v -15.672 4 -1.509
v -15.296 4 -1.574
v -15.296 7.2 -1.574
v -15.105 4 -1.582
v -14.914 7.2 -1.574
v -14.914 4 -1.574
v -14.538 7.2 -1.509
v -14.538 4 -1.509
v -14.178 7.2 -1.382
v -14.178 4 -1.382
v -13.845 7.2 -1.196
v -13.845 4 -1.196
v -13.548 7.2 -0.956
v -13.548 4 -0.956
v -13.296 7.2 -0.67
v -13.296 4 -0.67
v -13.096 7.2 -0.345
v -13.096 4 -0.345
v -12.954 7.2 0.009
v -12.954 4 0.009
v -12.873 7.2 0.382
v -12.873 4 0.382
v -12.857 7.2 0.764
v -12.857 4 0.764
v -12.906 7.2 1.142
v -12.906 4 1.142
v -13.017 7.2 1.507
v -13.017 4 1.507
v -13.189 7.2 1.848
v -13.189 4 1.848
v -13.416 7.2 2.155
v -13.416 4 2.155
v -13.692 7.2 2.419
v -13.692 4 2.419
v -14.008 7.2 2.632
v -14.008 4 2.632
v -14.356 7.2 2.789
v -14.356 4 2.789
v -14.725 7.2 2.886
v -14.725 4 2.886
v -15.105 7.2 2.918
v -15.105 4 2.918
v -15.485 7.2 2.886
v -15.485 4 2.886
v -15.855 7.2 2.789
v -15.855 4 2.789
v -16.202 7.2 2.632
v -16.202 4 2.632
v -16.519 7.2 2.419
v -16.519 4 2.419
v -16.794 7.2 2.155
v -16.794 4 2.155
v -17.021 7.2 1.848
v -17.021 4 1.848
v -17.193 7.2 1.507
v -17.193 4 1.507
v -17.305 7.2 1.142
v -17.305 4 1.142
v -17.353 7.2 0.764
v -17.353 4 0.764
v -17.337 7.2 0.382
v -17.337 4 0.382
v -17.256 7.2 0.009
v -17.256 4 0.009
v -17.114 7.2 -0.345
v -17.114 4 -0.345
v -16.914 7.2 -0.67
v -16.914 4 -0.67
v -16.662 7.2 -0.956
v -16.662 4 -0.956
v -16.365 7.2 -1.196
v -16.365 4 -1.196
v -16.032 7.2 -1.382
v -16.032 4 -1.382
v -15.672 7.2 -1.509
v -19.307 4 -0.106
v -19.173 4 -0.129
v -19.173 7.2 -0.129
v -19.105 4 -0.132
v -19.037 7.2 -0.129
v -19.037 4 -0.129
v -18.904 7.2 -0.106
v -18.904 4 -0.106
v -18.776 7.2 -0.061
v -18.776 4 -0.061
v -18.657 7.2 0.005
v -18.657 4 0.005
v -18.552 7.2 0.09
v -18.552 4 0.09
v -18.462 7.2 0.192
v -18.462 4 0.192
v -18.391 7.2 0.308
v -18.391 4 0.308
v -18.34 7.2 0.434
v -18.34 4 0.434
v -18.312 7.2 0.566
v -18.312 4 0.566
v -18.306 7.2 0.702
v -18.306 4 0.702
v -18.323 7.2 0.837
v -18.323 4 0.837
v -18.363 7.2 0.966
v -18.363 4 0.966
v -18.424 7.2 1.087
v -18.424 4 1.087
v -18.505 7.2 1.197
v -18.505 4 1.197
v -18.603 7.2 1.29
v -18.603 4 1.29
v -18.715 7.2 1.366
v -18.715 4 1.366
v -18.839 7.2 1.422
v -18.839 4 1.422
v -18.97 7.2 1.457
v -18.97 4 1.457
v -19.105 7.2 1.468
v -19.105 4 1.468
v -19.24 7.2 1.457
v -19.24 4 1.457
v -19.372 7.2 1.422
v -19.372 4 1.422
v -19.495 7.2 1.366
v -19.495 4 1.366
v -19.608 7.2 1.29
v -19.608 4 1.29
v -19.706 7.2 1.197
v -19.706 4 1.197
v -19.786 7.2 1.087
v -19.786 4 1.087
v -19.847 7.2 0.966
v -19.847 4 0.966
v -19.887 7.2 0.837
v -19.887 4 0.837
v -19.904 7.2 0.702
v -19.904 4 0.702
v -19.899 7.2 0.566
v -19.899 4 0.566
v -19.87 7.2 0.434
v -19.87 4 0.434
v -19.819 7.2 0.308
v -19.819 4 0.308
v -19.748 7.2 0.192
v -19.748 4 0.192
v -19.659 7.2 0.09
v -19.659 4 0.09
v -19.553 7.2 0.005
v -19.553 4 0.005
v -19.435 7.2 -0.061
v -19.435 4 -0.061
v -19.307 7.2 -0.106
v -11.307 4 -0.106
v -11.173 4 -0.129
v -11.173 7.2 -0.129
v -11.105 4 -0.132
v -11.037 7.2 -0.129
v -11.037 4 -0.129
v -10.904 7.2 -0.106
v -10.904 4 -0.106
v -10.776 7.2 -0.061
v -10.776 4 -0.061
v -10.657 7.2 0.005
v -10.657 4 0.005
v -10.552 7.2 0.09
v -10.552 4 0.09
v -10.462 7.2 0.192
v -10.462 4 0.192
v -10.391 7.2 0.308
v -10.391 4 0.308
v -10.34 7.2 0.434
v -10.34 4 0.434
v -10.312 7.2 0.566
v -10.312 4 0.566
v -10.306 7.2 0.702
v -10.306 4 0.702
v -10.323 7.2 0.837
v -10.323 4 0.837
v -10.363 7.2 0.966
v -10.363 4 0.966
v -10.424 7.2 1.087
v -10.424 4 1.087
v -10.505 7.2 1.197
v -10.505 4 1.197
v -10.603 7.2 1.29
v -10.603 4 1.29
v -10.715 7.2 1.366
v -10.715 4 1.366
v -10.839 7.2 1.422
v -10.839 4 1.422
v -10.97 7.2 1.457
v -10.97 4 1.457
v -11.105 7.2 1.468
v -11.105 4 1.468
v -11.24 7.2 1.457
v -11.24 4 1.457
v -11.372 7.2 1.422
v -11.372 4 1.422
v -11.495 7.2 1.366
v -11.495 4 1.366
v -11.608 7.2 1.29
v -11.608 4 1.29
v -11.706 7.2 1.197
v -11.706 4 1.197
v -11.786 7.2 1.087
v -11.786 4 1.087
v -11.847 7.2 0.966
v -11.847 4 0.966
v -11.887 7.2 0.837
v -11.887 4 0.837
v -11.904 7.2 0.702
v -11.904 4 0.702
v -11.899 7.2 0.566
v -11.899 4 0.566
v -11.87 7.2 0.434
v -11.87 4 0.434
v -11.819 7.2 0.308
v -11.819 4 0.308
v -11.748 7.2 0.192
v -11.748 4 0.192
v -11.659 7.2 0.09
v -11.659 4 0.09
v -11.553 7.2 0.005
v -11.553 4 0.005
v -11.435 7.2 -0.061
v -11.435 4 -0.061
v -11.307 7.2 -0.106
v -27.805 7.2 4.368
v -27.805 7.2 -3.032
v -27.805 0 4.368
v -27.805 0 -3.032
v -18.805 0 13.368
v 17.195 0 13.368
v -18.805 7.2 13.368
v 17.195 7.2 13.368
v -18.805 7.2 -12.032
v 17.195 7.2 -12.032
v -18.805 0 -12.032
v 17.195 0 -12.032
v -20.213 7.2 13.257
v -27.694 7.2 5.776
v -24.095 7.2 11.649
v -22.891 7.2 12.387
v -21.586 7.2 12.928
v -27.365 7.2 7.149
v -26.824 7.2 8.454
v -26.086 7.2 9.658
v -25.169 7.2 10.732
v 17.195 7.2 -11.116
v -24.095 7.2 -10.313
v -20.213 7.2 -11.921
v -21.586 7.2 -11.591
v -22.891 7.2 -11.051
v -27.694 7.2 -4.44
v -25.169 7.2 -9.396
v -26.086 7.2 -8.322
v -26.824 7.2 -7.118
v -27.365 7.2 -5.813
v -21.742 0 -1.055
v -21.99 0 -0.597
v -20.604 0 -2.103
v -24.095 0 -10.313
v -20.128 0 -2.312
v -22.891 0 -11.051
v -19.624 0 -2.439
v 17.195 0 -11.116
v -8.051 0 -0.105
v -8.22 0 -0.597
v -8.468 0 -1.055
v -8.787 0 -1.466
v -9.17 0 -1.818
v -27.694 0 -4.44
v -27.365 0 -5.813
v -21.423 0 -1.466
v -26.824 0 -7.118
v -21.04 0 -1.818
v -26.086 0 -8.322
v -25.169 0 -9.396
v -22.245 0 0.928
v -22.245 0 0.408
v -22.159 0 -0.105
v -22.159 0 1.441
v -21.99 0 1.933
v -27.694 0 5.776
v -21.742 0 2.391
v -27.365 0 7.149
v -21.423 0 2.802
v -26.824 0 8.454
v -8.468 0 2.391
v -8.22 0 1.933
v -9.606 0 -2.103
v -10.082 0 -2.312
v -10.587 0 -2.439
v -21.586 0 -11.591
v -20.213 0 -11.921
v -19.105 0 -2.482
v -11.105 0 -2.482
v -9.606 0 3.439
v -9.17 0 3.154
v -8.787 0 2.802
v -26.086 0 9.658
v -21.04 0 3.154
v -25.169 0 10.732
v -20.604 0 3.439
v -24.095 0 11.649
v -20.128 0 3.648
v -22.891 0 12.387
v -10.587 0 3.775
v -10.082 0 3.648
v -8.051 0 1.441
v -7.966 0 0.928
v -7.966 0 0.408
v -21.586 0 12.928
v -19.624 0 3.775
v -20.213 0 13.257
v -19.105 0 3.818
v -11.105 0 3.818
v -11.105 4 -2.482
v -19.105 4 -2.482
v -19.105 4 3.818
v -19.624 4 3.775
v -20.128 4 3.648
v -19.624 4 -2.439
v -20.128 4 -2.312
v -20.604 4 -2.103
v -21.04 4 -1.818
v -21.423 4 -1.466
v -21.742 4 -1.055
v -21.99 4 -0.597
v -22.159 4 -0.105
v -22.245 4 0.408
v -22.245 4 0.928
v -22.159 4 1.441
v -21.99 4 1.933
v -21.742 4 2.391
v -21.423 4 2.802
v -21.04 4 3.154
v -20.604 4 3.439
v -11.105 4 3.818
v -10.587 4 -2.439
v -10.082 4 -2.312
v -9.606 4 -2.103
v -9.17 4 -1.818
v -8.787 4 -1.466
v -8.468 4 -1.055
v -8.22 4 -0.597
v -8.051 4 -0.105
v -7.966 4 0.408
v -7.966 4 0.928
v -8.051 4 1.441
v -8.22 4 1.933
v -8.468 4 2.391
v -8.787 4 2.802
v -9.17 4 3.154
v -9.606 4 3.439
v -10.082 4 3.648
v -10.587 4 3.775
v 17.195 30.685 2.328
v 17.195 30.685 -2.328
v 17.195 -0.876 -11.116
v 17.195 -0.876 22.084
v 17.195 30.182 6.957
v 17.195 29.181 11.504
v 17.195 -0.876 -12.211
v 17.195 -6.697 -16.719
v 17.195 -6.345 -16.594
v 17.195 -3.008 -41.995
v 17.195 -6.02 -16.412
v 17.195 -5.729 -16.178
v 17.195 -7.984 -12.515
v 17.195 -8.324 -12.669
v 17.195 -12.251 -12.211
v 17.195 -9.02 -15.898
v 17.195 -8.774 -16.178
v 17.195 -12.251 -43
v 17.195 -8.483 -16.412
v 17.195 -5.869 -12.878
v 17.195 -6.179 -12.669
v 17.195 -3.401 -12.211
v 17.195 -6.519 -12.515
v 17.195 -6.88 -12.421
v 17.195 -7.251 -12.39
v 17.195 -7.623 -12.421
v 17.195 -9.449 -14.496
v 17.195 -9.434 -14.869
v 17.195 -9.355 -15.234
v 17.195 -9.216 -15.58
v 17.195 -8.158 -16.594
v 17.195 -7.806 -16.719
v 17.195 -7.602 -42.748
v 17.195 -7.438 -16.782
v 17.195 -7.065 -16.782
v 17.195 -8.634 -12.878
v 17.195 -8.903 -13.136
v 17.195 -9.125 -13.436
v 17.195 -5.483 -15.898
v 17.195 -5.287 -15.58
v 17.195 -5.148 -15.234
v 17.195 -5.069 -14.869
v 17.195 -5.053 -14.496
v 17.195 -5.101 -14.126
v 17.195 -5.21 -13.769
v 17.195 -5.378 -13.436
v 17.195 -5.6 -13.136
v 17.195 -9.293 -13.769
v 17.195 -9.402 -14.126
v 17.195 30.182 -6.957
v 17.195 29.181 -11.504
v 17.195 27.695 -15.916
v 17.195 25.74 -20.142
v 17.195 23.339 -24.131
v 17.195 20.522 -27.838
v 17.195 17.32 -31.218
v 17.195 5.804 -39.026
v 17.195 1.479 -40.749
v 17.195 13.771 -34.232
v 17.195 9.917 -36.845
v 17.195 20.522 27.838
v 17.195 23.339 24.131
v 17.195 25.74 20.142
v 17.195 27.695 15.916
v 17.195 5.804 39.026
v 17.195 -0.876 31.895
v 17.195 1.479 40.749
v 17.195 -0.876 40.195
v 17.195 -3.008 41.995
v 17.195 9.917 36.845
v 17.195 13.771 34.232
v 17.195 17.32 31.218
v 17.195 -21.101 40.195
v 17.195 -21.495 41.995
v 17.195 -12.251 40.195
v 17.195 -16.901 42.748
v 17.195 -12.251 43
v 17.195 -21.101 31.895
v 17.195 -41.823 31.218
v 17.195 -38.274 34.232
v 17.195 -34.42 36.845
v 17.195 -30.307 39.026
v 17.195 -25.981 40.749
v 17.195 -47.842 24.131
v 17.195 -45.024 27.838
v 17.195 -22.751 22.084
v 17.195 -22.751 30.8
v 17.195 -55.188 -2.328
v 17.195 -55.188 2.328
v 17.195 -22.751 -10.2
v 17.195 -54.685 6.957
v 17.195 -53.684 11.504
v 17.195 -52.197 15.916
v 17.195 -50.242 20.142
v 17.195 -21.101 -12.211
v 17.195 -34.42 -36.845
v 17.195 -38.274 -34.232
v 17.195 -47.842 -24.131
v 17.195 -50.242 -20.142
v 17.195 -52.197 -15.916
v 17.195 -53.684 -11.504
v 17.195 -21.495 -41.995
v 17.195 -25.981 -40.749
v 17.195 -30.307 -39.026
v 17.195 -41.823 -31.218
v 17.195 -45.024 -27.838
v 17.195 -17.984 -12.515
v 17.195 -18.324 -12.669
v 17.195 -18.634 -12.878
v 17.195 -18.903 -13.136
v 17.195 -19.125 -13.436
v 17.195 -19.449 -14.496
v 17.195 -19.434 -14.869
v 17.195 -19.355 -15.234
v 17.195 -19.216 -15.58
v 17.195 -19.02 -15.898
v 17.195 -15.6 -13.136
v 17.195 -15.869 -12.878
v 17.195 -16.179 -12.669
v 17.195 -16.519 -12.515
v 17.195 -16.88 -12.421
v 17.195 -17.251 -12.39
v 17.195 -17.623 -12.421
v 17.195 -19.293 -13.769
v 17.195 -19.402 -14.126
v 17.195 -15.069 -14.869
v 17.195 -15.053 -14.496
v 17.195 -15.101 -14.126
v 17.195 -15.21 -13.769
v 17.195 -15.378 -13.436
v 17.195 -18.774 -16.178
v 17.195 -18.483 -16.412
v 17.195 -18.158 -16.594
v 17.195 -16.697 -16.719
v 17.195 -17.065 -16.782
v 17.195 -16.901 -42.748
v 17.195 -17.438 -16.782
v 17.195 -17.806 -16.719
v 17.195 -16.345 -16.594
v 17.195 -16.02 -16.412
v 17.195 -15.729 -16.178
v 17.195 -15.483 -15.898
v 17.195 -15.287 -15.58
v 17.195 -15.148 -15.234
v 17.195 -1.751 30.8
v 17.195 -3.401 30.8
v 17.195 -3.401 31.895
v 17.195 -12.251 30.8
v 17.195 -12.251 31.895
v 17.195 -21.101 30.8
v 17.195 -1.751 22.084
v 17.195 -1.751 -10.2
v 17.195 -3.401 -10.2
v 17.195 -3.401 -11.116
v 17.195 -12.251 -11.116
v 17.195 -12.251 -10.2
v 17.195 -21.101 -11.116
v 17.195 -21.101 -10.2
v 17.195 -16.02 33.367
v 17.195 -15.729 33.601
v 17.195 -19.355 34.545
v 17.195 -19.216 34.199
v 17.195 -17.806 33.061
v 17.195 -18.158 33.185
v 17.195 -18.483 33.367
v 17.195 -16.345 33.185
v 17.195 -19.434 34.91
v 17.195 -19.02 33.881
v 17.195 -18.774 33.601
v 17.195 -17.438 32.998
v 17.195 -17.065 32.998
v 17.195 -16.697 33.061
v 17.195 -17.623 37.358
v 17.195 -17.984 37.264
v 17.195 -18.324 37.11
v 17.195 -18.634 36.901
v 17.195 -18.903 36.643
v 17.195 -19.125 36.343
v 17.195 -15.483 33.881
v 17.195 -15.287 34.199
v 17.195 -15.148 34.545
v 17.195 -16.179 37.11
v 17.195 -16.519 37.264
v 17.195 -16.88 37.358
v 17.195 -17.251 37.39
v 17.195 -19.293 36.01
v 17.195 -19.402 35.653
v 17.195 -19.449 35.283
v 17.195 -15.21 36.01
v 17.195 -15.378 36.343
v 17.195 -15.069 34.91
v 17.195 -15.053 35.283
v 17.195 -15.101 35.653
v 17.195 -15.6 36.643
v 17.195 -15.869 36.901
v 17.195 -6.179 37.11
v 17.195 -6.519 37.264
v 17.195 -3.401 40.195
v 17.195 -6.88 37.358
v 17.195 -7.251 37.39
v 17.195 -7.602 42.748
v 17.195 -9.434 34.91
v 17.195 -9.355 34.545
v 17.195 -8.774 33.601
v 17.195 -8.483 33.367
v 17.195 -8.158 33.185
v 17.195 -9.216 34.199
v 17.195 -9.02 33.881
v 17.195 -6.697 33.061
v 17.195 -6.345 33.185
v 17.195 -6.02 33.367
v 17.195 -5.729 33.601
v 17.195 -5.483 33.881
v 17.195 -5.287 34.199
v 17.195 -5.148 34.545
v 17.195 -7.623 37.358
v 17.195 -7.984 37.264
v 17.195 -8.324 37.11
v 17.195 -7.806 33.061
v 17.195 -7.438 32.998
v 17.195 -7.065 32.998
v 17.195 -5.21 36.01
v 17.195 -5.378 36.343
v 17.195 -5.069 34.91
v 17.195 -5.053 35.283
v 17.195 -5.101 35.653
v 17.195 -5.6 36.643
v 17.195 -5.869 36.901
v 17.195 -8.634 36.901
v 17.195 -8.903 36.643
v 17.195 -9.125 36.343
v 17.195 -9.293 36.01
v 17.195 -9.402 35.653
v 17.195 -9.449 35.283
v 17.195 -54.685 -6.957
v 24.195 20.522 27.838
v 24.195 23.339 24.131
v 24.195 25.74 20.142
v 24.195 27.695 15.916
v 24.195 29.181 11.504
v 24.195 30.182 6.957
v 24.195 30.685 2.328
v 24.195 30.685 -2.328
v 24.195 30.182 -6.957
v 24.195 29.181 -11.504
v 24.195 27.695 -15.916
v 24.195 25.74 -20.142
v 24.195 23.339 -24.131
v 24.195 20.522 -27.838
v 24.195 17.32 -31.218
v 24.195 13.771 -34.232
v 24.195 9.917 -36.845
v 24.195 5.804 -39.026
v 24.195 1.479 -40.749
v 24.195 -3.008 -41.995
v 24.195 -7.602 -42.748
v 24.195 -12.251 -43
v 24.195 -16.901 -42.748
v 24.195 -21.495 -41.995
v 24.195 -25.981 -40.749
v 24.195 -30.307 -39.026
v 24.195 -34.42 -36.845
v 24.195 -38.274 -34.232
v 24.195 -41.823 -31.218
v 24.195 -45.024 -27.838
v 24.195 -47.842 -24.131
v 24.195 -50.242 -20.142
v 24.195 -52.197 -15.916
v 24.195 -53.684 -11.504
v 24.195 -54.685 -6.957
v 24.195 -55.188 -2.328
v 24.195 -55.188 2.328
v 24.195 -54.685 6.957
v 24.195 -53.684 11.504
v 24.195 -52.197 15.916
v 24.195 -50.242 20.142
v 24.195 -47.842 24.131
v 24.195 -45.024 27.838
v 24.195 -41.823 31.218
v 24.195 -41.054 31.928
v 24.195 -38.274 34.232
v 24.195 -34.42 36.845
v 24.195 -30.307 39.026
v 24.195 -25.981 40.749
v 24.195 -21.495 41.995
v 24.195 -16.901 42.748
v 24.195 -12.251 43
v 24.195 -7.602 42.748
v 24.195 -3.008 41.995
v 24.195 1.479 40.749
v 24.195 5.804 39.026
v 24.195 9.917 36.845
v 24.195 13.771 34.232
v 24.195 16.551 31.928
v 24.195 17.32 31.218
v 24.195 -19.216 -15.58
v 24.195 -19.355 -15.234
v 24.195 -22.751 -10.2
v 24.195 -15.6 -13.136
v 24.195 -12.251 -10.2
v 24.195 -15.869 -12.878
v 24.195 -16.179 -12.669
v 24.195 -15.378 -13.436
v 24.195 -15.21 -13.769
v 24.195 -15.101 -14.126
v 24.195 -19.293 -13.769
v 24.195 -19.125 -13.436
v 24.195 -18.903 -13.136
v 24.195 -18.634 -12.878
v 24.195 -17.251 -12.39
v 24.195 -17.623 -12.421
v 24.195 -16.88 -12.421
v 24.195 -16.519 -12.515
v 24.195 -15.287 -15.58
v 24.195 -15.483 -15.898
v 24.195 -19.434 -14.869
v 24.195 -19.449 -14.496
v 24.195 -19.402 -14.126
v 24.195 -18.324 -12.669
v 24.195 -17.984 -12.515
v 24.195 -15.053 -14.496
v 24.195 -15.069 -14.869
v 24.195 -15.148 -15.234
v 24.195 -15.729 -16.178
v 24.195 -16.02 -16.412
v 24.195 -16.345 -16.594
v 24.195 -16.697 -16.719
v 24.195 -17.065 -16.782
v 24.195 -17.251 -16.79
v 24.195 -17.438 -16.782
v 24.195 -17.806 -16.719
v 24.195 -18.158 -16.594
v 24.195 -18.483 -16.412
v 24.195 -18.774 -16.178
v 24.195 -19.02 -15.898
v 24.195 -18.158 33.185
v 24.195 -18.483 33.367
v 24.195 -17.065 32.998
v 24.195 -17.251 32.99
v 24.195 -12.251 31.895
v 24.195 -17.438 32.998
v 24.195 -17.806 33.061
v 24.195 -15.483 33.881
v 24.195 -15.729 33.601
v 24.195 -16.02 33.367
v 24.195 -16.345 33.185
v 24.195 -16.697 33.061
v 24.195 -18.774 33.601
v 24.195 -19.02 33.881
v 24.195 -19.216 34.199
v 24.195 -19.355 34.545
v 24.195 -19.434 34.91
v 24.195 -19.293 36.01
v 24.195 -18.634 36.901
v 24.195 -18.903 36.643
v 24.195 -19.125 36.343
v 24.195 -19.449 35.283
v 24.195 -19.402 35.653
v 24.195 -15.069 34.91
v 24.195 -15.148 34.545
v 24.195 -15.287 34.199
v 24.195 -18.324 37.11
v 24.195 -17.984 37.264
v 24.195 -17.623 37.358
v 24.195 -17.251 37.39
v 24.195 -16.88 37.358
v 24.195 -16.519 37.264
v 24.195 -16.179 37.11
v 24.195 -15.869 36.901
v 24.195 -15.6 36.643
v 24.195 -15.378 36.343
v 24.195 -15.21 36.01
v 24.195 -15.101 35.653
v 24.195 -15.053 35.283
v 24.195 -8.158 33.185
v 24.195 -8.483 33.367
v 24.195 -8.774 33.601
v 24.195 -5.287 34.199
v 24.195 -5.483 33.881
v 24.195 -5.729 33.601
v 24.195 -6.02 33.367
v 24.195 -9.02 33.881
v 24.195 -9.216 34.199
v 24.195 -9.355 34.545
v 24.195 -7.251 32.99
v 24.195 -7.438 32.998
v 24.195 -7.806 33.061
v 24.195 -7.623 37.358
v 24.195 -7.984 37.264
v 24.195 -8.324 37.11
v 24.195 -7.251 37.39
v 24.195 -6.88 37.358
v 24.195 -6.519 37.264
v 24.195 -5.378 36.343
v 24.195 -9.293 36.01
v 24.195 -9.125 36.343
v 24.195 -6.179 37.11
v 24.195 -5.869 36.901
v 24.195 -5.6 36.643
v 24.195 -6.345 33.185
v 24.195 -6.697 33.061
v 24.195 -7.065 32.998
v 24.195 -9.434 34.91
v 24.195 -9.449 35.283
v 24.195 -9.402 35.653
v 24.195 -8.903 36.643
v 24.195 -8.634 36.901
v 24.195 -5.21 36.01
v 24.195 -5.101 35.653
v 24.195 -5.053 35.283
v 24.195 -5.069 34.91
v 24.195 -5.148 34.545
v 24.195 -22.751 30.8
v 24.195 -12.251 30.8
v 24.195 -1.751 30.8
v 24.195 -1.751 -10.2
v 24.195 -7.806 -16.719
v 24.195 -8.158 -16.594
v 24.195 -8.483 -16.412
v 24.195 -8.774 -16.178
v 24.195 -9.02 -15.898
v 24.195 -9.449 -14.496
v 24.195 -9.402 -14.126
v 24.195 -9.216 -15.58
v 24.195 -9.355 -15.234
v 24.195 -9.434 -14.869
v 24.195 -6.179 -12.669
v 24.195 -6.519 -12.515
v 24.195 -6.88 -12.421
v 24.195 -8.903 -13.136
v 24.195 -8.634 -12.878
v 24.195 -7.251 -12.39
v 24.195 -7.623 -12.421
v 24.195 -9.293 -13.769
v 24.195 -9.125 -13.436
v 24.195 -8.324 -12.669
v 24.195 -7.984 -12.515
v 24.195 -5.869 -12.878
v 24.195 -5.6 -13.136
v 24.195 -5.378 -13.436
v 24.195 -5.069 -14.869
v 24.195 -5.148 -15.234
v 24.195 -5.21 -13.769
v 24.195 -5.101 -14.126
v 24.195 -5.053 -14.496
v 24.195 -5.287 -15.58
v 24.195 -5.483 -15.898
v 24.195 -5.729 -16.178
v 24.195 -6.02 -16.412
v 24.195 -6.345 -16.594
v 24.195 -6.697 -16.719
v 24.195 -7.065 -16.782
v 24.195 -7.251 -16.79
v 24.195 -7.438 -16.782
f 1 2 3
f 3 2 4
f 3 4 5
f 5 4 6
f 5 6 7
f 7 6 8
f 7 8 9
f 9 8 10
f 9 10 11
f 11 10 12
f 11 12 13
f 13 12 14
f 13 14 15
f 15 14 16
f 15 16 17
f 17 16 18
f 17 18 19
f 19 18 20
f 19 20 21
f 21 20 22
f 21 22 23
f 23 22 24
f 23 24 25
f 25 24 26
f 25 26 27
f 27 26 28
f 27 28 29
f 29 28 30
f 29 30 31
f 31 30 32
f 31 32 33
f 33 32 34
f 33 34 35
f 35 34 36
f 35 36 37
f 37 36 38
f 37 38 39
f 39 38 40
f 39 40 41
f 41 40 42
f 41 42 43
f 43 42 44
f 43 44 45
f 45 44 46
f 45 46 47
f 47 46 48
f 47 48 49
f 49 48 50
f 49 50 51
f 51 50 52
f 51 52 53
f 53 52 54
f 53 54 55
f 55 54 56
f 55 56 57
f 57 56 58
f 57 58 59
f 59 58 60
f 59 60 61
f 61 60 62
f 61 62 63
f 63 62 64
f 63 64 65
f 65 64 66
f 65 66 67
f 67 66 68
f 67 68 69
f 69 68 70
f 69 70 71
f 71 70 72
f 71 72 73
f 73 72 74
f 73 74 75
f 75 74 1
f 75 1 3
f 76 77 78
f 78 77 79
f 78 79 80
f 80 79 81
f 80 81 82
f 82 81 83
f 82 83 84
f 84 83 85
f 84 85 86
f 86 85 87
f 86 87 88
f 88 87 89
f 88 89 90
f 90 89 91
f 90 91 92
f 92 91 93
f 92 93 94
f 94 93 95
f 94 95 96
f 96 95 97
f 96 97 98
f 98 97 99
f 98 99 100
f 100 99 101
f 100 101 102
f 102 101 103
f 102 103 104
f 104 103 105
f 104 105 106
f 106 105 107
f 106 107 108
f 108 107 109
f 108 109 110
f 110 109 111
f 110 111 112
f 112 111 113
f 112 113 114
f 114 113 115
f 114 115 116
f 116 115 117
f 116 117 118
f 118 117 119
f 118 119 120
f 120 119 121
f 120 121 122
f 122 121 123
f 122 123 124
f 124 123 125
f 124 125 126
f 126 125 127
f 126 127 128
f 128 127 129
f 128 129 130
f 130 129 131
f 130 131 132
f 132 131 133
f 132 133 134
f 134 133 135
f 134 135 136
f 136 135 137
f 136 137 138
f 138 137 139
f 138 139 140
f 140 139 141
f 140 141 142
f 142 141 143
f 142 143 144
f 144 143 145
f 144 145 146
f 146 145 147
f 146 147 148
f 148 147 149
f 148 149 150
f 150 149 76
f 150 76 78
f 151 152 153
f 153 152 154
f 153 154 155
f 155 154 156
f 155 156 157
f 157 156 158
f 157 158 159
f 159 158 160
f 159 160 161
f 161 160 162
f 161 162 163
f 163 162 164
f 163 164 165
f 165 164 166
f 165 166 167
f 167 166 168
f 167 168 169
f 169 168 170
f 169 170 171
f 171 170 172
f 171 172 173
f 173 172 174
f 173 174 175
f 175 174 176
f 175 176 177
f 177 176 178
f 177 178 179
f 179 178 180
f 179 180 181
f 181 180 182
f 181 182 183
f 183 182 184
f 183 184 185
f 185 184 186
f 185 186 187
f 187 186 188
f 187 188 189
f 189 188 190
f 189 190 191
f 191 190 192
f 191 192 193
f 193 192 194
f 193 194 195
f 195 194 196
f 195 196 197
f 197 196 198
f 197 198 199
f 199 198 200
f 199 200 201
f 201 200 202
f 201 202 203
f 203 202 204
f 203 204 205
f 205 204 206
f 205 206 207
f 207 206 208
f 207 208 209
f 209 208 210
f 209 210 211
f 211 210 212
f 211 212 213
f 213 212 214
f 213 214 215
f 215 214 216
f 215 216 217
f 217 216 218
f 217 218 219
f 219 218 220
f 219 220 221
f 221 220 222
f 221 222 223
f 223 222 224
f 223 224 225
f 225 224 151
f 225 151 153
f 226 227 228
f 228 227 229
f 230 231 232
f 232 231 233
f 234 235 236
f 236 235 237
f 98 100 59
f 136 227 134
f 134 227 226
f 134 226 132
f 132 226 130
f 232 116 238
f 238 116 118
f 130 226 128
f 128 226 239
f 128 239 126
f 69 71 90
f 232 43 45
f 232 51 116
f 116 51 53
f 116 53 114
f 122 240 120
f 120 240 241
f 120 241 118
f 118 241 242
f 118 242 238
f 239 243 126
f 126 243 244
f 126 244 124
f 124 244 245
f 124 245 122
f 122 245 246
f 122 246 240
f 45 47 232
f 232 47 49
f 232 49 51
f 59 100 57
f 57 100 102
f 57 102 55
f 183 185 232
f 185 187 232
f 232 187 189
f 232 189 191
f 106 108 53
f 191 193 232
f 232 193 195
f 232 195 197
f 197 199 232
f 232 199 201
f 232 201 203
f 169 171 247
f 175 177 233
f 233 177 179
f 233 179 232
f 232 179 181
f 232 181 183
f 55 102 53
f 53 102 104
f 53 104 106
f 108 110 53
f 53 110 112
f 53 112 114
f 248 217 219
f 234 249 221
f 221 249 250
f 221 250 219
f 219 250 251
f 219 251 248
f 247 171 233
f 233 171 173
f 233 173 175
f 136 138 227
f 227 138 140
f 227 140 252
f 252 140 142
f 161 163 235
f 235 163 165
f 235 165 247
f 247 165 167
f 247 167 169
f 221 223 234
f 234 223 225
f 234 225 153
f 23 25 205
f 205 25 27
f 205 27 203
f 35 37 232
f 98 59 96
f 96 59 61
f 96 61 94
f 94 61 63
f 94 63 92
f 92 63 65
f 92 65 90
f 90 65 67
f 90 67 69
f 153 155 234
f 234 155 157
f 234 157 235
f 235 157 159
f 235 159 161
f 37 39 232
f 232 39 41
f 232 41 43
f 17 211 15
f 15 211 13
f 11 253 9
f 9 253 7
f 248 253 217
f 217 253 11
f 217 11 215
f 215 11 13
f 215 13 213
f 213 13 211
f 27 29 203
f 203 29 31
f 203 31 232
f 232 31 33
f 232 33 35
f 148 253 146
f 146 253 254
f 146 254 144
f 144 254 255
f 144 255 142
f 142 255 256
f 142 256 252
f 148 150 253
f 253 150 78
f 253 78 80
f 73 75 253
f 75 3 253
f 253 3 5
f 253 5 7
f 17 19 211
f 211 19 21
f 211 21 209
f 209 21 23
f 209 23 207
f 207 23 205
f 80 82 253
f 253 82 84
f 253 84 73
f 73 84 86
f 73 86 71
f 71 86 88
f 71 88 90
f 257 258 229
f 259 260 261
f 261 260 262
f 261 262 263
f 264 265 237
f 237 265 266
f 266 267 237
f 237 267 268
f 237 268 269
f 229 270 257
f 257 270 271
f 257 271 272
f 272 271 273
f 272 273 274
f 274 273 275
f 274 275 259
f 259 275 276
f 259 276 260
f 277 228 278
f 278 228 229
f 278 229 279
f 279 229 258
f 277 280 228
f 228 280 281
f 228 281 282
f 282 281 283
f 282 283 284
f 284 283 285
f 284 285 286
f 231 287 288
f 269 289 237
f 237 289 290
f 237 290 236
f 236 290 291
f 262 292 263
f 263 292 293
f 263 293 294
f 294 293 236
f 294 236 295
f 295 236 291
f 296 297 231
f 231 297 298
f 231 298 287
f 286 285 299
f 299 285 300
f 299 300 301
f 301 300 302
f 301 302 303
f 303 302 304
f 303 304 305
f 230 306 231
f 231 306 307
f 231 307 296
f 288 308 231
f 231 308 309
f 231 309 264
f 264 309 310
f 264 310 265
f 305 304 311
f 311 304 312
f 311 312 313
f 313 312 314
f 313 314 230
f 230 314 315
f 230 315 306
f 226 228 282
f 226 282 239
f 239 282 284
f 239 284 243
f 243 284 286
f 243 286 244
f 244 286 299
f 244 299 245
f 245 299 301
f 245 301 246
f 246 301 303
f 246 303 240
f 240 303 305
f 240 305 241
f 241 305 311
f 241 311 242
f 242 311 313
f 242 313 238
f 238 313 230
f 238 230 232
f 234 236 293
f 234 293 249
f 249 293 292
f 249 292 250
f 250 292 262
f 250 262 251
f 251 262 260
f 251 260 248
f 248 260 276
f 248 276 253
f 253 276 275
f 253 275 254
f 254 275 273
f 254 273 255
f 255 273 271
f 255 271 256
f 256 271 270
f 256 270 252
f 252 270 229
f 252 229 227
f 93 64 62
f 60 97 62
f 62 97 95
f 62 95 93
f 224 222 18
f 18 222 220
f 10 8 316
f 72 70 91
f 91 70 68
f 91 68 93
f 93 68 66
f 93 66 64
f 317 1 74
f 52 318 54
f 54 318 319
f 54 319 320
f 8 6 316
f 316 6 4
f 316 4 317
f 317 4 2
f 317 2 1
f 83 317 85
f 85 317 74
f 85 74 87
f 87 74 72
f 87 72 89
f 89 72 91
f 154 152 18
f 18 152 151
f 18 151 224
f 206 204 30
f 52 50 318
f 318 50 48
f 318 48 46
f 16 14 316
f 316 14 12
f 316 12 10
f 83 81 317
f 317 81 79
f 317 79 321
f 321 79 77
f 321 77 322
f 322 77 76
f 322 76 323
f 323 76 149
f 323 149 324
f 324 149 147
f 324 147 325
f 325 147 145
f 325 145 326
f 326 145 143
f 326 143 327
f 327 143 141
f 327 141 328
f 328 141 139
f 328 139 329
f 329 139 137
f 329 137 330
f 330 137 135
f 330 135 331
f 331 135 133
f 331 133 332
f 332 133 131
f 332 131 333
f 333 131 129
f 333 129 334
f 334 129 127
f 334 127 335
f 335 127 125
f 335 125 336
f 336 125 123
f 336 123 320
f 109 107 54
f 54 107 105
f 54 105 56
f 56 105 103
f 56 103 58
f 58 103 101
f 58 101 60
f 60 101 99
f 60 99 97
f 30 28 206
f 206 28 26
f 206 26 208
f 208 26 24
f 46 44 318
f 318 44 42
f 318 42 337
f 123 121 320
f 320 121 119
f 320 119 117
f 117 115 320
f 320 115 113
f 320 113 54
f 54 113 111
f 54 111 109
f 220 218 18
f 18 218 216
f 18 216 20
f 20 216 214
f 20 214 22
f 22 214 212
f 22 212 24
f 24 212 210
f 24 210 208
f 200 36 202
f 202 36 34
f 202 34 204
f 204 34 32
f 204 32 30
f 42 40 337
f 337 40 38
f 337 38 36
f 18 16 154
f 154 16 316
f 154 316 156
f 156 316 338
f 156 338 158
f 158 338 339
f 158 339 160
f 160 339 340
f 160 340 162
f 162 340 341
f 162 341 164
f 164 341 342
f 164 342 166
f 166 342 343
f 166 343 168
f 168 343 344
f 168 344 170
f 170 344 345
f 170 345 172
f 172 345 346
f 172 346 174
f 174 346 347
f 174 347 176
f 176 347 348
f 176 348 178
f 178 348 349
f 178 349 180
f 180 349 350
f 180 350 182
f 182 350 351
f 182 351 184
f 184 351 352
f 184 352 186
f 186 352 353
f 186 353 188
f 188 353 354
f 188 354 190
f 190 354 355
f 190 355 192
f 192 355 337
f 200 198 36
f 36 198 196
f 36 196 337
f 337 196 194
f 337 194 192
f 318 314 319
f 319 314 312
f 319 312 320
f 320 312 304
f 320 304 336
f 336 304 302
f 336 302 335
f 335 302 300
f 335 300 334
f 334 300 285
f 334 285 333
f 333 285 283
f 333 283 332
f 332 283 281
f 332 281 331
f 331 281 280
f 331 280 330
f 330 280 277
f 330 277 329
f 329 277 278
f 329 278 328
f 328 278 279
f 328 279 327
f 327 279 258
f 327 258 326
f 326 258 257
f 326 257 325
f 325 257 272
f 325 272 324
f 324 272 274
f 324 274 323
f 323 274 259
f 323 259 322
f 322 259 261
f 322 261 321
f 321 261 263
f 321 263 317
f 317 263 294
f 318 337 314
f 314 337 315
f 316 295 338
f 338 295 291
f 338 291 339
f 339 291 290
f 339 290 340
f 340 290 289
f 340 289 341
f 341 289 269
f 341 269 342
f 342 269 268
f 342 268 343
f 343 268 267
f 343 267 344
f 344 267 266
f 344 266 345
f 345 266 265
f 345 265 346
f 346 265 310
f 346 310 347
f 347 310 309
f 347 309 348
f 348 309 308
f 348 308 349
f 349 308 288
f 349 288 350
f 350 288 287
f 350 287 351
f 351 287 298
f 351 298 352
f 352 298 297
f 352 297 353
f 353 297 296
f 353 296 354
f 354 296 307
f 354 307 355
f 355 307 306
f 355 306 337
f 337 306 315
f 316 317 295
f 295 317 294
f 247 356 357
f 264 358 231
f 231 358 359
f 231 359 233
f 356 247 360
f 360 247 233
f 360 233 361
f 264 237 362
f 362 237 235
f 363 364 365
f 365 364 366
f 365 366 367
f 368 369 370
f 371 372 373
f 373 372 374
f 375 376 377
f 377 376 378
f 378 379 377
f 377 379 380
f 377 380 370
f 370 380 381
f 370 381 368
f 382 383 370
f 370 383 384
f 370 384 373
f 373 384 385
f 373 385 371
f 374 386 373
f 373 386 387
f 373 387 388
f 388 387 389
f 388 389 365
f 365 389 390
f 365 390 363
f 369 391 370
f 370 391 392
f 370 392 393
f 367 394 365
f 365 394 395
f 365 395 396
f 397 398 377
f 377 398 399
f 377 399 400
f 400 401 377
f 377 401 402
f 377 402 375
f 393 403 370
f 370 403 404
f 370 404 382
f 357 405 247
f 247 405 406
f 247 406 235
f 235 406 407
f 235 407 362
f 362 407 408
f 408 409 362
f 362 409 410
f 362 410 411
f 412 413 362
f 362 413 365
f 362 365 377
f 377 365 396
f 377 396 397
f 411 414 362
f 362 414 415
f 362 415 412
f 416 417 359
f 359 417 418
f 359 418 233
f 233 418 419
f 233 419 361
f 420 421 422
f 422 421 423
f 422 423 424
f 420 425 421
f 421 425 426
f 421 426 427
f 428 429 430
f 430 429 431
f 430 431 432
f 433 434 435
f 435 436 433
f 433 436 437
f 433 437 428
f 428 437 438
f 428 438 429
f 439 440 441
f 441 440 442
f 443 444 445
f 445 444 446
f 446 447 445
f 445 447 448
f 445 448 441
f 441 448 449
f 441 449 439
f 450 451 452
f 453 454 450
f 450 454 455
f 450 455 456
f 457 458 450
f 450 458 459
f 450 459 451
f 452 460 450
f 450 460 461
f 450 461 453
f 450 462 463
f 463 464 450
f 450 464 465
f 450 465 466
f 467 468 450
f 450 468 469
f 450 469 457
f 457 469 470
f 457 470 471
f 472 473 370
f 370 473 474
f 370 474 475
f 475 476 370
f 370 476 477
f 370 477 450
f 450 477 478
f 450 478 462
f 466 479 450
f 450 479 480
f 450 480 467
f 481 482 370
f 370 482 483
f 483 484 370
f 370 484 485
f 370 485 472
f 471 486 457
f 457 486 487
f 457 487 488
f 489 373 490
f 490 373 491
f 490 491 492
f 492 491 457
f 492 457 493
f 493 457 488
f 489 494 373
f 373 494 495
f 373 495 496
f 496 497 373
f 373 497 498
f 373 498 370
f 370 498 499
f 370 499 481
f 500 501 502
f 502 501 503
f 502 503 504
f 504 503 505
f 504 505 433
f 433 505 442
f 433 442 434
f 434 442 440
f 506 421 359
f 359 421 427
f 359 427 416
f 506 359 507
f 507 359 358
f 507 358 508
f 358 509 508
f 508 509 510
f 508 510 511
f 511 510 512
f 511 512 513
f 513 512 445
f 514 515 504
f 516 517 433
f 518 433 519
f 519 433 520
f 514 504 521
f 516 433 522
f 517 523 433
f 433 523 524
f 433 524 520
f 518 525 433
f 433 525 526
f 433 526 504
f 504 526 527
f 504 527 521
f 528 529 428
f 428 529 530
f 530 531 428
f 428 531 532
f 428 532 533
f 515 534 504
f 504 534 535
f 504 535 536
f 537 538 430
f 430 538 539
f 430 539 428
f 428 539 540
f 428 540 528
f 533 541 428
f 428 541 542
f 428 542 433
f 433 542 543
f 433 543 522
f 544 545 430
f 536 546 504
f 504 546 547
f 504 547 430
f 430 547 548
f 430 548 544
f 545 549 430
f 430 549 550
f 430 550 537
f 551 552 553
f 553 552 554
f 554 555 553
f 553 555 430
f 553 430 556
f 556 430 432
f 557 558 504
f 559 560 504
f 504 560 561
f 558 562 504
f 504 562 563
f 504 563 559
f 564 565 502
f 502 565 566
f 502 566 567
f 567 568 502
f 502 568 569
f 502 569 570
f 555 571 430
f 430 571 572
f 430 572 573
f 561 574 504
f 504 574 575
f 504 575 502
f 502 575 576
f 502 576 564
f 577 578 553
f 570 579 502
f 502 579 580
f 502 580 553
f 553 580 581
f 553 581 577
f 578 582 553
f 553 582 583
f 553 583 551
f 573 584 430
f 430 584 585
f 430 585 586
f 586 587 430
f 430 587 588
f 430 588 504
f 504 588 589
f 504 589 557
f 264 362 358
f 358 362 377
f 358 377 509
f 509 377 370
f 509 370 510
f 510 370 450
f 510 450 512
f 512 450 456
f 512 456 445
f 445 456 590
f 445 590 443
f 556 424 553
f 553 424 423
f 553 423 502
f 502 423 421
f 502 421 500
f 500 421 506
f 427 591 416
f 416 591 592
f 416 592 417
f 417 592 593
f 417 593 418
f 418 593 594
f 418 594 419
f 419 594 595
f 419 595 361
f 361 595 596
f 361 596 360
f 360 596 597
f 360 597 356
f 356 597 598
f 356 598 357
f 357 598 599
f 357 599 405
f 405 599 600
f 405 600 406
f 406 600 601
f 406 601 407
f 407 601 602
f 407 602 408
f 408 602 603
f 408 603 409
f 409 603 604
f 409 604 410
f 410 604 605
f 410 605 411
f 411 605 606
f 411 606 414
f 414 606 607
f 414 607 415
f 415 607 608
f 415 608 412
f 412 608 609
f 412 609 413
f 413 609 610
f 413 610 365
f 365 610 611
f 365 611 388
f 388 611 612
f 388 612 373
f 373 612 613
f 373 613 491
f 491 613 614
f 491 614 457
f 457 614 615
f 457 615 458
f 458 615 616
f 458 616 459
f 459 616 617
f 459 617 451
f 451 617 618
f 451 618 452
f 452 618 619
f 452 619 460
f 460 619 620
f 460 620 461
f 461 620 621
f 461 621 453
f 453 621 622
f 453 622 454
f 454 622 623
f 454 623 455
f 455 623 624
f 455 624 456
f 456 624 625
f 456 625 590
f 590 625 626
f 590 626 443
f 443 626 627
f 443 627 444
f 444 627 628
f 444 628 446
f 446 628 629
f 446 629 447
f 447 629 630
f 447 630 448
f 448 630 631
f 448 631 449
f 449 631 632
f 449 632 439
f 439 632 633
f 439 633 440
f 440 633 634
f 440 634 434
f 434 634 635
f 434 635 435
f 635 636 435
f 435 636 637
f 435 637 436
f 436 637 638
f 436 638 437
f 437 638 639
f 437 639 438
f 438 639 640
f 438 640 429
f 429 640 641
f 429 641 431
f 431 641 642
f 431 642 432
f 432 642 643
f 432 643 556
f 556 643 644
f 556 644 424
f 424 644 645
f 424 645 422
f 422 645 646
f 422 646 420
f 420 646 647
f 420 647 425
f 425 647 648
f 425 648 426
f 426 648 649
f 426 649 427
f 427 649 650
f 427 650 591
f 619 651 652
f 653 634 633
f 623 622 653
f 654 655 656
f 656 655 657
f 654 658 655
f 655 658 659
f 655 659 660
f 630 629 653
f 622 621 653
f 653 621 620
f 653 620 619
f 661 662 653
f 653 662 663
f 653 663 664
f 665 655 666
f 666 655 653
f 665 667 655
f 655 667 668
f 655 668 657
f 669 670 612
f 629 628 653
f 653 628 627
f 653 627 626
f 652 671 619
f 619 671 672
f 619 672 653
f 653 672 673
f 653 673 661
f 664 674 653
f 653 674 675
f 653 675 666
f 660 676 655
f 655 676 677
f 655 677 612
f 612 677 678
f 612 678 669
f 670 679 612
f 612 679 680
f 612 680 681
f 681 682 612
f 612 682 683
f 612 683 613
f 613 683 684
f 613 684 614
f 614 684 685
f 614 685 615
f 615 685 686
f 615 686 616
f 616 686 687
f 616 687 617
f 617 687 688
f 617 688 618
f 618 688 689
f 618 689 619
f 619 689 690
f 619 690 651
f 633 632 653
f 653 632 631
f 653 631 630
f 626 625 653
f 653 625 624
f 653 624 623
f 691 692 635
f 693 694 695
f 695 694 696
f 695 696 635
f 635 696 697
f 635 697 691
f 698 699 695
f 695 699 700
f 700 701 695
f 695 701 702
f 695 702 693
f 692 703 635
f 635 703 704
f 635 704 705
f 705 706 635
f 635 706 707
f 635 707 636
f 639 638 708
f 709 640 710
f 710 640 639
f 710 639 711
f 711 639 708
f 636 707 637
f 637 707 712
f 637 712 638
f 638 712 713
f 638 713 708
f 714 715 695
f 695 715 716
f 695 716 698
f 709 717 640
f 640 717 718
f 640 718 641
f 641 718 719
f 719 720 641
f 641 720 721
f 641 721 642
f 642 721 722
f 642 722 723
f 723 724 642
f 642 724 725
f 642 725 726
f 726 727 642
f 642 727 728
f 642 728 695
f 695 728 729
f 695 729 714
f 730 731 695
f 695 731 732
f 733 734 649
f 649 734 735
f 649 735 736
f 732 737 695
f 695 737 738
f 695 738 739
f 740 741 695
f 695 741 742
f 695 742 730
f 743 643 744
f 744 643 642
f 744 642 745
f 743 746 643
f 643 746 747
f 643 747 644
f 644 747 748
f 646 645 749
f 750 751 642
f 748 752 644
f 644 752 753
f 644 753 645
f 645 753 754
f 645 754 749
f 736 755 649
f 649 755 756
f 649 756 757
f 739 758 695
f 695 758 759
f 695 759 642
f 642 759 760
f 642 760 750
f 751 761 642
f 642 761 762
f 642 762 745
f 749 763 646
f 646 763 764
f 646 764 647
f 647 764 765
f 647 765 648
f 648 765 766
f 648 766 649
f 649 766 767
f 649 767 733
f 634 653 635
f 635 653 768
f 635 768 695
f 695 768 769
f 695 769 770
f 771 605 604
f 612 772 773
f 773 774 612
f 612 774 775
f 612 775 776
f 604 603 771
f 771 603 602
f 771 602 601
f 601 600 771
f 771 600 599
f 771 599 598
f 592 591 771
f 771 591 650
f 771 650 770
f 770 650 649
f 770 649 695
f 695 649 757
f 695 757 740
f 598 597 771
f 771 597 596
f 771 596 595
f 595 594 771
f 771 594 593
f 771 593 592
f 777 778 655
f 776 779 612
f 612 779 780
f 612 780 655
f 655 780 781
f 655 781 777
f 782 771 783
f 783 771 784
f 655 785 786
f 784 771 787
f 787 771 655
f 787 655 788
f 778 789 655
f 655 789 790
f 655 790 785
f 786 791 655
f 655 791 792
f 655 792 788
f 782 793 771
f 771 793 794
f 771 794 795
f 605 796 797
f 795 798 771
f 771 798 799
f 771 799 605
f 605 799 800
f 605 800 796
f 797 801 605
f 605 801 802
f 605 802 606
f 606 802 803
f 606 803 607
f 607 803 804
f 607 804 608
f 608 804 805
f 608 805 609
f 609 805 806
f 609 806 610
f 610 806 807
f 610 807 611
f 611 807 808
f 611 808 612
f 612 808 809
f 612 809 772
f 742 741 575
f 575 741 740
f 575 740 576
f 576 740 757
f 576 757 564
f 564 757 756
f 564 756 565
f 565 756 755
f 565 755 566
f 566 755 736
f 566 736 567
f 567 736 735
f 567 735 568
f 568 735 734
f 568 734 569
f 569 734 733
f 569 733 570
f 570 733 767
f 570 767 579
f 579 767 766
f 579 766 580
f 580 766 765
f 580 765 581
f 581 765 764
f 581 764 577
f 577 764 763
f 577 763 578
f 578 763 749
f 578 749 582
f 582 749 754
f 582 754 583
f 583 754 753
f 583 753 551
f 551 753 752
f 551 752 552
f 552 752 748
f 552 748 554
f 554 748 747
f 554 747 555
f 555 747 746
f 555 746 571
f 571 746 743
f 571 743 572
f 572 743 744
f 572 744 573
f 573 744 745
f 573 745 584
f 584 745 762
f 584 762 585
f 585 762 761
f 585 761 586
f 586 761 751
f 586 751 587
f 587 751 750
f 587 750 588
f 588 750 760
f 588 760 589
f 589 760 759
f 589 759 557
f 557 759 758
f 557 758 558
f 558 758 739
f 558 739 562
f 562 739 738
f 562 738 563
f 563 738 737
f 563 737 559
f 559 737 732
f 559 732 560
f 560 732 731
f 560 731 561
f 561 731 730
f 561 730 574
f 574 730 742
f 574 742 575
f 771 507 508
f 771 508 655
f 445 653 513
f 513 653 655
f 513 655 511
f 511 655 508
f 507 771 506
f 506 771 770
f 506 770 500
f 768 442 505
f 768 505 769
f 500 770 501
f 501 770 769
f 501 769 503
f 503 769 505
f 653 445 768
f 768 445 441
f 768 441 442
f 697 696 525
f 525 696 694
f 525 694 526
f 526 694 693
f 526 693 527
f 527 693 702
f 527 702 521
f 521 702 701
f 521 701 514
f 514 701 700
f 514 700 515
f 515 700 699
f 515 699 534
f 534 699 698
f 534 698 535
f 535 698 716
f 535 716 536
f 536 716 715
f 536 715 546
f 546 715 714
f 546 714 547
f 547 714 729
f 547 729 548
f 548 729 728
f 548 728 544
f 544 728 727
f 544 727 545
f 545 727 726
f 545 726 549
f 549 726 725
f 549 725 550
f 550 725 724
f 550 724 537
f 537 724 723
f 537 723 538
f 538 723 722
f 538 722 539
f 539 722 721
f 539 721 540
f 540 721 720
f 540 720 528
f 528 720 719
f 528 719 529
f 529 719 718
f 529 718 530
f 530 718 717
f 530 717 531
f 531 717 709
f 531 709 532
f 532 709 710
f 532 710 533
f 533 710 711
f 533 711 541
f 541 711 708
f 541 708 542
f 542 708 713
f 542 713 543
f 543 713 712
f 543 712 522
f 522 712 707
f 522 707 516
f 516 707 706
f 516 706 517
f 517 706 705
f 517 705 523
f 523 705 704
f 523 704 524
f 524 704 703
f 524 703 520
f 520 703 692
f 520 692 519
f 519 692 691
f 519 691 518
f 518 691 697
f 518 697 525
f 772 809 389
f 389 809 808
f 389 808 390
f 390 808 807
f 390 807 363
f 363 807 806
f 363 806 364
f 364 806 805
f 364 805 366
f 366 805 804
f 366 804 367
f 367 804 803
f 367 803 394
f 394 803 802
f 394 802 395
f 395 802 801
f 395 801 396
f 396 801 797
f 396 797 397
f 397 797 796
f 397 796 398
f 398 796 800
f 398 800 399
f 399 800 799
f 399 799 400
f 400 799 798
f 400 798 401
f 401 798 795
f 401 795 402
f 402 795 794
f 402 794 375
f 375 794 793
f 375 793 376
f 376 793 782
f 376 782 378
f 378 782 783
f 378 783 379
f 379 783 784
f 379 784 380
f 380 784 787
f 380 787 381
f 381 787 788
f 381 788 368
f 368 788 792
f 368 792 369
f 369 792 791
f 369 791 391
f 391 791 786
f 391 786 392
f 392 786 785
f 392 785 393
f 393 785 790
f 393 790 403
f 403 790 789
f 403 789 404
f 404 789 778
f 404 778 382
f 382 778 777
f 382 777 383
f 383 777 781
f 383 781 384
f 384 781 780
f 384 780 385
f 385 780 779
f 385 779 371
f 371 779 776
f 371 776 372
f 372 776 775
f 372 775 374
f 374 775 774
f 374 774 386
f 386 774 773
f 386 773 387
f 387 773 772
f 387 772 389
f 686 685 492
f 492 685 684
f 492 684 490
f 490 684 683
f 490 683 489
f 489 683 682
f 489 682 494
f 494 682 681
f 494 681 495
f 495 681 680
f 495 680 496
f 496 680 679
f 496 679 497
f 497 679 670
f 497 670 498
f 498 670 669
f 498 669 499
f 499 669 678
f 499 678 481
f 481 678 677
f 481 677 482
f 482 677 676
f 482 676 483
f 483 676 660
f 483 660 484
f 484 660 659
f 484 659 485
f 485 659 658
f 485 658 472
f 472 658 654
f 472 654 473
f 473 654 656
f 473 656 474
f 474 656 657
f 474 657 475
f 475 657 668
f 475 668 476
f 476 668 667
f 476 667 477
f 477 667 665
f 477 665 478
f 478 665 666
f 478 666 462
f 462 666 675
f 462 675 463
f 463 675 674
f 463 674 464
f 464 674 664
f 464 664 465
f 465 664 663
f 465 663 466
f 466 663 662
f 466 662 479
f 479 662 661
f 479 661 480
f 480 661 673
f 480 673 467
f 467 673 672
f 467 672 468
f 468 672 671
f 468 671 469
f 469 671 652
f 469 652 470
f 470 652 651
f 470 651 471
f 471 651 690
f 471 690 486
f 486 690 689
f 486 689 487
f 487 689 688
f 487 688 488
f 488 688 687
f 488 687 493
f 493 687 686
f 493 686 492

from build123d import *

# Parameters (mm, degrees)
SKETCH1_W           = 45
SKETCH1_H           = 25.4
BOSS_EXTRUDE1_DEPTH = 7.2
FILLET1_R           = 9
SKETCH5_R           = 2.25
SKETCH5_R_2         = 0.8
CUT_EXTRUDE1_DEPTH  = 32.680717235
CUT_EXTRUDE2_DEPTH  = 4
SKETCH7_R           = 43
BOSS_EXTRUDE2_DEPTH = 7
CUT_EXTRUDE5_REACH  = 89.211
SKETCH10_R          = 4.070055362
CUT_EXTRUDE6_REACH  = 85.227
SKETCH11_R          = 2.2
SKETCH11_W          = 41
SKETCH11_H          = 21


with BuildPart() as part:
    # Sketch1 → Boss-Extrude1 (new body)
    with BuildSketch(Plane(origin=(0, 0, 0), x_dir=(1, 0, 0), z_dir=(0, 1, 0))):
        with Locations((-5.305107108, -0.668016429)):
            Rectangle(SKETCH1_W, SKETCH1_H)
    extrude(amount=BOSS_EXTRUDE1_DEPTH)

    # Fillet1
    fillet1_edges = [part.edges().sort_by_distance(p)[0] for p in [
        (-27.805107108, 3.6, -12.031983571),
        (-27.805107108, 3.6, 13.368016429),
    ]]
    fillet(fillet1_edges, radius=FILLET1_R)

    # Sketch5 → Cut-Extrude1 (cut, through all)
    with BuildSketch(Plane(origin=(0, 7.2, 0), x_dir=(1, 0, 0), z_dir=(0, 1, 0))):
        with Locations(Location((-15.105107108, -0.668016429, 0), (0, 0, 270))):
            Circle(SKETCH5_R)
        with Locations(Location((-19.105107108, -0.668016429, 0), (0, 0, 270))):
            Circle(SKETCH5_R_2)
        with Locations(Location((-11.105107108, -0.668016429, 0), (0, 0, 270))):
            Circle(SKETCH5_R_2)
    extrude(amount=-CUT_EXTRUDE1_DEPTH, mode=Mode.SUBTRACT)

    # Sketch6 → Cut-Extrude2 (cut)
    with BuildSketch(Plane.XZ):
        with BuildLine():
            Line((-19.105107108, 3.818299004), (-11.105107108, 3.818299004))
            ThreePointArc((-11.105107108, 3.818299004), (-7.954824533, 0.668016429), (-11.105107108, -2.482266146))
            Line((-11.105107108, -2.482266146), (-19.105107108, -2.482266146))
            ThreePointArc((-19.105107108, -2.482266146), (-22.255389683, 0.668016429), (-19.105107108, 3.818299004))
        make_face()
    extrude(amount=-CUT_EXTRUDE2_DEPTH, mode=Mode.SUBTRACT)

    # Sketch7 → Boss-Extrude2 (add)
    with BuildSketch(Plane(origin=(17.194892892, 0, 0), x_dir=(0, 0, -1), z_dir=(1, 0, 0))):
        with Locations((0, -12.251447975)):
            Circle(SKETCH7_R)
    extrude(amount=BOSS_EXTRUDE2_DEPTH)

    # Sketch10 → Cut-Extrude5 (cut, up to next)
    with BuildSketch(Plane(origin=(24.194892892, 0, 0), x_dir=(0, 0, -1), z_dir=(1, 0, 0)), mode=Mode.PRIVATE) as cut_extrude5_sk1:
        with Locations((0, -12.251447975)):
            Circle(SKETCH10_R)
    cut_extrude5_tool1 = extrude(cut_extrude5_sk1.sketch, amount=-CUT_EXTRUDE5_REACH, mode=Mode.PRIVATE) & part.part
    add(cut_extrude5_tool1.solids().sort_by_distance((24.194893, -12.251448, 0))[0], mode=Mode.SUBTRACT)

    # Sketch11 → Cut-Extrude6 (cut, up to next)
    with BuildSketch(Plane.ZY.offset(-17.194892892), mode=Mode.PRIVATE) as cut_extrude6_sk1:
        with Locations((35.189613301, -7.251447975)):
            Circle(SKETCH11_R)
    cut_extrude6_tool1 = extrude(cut_extrude6_sk1.sketch, amount=-CUT_EXTRUDE6_REACH, mode=Mode.PRIVATE) & part.part
    # Sketch11 → Cut-Extrude6 (cut, up to next)
    with BuildSketch(Plane.ZY.offset(-17.194892892), mode=Mode.PRIVATE) as cut_extrude6_sk2:
        with Locations((35.189613301, -17.251447975)):
            Circle(SKETCH11_R)
    cut_extrude6_tool2 = extrude(cut_extrude6_sk2.sketch, amount=-CUT_EXTRUDE6_REACH, mode=Mode.PRIVATE) & part.part
    # Sketch11 → Cut-Extrude6 (cut, up to next)
    with BuildSketch(Plane.ZY.offset(-17.194892892), mode=Mode.PRIVATE) as cut_extrude6_sk3:
        with Locations((-14.589613301, -7.251447975)):
            Circle(SKETCH11_R)
    cut_extrude6_tool3 = extrude(cut_extrude6_sk3.sketch, amount=-CUT_EXTRUDE6_REACH, mode=Mode.PRIVATE) & part.part
    # Sketch11 → Cut-Extrude6 (cut, up to next)
    with BuildSketch(Plane.ZY.offset(-17.194892892), mode=Mode.PRIVATE) as cut_extrude6_sk4:
        with Locations((-14.589613301, -17.251447975)):
            Circle(SKETCH11_R)
    cut_extrude6_tool4 = extrude(cut_extrude6_sk4.sketch, amount=-CUT_EXTRUDE6_REACH, mode=Mode.PRIVATE) & part.part
    # Sketch11 → Cut-Extrude6 (cut, up to next)
    with BuildSketch(Plane.ZY.offset(-17.194892892), mode=Mode.PRIVATE) as cut_extrude6_sk5:
        with Locations((10.3, -12.251447975)):
            Rectangle(SKETCH11_W, SKETCH11_H)
    cut_extrude6_tool5 = extrude(cut_extrude6_sk5.sketch, amount=-CUT_EXTRUDE6_REACH, mode=Mode.PRIVATE) & part.part
    add(cut_extrude6_tool1.solids().sort_by_distance((17.194893, -7.251448, 35.189613))[0], mode=Mode.SUBTRACT)
    add(cut_extrude6_tool2.solids().sort_by_distance((17.194893, -17.251448, 35.189613))[0], mode=Mode.SUBTRACT)
    add(cut_extrude6_tool3.solids().sort_by_distance((17.194893, -7.251448, -14.589613))[0], mode=Mode.SUBTRACT)
    add(cut_extrude6_tool4.solids().sort_by_distance((17.194893, -17.251448, -14.589613))[0], mode=Mode.SUBTRACT)
    add(cut_extrude6_tool5.solids().sort_by_distance((17.194893, -12.251448, 10.3))[0], mode=Mode.SUBTRACT)


solid = part.part
